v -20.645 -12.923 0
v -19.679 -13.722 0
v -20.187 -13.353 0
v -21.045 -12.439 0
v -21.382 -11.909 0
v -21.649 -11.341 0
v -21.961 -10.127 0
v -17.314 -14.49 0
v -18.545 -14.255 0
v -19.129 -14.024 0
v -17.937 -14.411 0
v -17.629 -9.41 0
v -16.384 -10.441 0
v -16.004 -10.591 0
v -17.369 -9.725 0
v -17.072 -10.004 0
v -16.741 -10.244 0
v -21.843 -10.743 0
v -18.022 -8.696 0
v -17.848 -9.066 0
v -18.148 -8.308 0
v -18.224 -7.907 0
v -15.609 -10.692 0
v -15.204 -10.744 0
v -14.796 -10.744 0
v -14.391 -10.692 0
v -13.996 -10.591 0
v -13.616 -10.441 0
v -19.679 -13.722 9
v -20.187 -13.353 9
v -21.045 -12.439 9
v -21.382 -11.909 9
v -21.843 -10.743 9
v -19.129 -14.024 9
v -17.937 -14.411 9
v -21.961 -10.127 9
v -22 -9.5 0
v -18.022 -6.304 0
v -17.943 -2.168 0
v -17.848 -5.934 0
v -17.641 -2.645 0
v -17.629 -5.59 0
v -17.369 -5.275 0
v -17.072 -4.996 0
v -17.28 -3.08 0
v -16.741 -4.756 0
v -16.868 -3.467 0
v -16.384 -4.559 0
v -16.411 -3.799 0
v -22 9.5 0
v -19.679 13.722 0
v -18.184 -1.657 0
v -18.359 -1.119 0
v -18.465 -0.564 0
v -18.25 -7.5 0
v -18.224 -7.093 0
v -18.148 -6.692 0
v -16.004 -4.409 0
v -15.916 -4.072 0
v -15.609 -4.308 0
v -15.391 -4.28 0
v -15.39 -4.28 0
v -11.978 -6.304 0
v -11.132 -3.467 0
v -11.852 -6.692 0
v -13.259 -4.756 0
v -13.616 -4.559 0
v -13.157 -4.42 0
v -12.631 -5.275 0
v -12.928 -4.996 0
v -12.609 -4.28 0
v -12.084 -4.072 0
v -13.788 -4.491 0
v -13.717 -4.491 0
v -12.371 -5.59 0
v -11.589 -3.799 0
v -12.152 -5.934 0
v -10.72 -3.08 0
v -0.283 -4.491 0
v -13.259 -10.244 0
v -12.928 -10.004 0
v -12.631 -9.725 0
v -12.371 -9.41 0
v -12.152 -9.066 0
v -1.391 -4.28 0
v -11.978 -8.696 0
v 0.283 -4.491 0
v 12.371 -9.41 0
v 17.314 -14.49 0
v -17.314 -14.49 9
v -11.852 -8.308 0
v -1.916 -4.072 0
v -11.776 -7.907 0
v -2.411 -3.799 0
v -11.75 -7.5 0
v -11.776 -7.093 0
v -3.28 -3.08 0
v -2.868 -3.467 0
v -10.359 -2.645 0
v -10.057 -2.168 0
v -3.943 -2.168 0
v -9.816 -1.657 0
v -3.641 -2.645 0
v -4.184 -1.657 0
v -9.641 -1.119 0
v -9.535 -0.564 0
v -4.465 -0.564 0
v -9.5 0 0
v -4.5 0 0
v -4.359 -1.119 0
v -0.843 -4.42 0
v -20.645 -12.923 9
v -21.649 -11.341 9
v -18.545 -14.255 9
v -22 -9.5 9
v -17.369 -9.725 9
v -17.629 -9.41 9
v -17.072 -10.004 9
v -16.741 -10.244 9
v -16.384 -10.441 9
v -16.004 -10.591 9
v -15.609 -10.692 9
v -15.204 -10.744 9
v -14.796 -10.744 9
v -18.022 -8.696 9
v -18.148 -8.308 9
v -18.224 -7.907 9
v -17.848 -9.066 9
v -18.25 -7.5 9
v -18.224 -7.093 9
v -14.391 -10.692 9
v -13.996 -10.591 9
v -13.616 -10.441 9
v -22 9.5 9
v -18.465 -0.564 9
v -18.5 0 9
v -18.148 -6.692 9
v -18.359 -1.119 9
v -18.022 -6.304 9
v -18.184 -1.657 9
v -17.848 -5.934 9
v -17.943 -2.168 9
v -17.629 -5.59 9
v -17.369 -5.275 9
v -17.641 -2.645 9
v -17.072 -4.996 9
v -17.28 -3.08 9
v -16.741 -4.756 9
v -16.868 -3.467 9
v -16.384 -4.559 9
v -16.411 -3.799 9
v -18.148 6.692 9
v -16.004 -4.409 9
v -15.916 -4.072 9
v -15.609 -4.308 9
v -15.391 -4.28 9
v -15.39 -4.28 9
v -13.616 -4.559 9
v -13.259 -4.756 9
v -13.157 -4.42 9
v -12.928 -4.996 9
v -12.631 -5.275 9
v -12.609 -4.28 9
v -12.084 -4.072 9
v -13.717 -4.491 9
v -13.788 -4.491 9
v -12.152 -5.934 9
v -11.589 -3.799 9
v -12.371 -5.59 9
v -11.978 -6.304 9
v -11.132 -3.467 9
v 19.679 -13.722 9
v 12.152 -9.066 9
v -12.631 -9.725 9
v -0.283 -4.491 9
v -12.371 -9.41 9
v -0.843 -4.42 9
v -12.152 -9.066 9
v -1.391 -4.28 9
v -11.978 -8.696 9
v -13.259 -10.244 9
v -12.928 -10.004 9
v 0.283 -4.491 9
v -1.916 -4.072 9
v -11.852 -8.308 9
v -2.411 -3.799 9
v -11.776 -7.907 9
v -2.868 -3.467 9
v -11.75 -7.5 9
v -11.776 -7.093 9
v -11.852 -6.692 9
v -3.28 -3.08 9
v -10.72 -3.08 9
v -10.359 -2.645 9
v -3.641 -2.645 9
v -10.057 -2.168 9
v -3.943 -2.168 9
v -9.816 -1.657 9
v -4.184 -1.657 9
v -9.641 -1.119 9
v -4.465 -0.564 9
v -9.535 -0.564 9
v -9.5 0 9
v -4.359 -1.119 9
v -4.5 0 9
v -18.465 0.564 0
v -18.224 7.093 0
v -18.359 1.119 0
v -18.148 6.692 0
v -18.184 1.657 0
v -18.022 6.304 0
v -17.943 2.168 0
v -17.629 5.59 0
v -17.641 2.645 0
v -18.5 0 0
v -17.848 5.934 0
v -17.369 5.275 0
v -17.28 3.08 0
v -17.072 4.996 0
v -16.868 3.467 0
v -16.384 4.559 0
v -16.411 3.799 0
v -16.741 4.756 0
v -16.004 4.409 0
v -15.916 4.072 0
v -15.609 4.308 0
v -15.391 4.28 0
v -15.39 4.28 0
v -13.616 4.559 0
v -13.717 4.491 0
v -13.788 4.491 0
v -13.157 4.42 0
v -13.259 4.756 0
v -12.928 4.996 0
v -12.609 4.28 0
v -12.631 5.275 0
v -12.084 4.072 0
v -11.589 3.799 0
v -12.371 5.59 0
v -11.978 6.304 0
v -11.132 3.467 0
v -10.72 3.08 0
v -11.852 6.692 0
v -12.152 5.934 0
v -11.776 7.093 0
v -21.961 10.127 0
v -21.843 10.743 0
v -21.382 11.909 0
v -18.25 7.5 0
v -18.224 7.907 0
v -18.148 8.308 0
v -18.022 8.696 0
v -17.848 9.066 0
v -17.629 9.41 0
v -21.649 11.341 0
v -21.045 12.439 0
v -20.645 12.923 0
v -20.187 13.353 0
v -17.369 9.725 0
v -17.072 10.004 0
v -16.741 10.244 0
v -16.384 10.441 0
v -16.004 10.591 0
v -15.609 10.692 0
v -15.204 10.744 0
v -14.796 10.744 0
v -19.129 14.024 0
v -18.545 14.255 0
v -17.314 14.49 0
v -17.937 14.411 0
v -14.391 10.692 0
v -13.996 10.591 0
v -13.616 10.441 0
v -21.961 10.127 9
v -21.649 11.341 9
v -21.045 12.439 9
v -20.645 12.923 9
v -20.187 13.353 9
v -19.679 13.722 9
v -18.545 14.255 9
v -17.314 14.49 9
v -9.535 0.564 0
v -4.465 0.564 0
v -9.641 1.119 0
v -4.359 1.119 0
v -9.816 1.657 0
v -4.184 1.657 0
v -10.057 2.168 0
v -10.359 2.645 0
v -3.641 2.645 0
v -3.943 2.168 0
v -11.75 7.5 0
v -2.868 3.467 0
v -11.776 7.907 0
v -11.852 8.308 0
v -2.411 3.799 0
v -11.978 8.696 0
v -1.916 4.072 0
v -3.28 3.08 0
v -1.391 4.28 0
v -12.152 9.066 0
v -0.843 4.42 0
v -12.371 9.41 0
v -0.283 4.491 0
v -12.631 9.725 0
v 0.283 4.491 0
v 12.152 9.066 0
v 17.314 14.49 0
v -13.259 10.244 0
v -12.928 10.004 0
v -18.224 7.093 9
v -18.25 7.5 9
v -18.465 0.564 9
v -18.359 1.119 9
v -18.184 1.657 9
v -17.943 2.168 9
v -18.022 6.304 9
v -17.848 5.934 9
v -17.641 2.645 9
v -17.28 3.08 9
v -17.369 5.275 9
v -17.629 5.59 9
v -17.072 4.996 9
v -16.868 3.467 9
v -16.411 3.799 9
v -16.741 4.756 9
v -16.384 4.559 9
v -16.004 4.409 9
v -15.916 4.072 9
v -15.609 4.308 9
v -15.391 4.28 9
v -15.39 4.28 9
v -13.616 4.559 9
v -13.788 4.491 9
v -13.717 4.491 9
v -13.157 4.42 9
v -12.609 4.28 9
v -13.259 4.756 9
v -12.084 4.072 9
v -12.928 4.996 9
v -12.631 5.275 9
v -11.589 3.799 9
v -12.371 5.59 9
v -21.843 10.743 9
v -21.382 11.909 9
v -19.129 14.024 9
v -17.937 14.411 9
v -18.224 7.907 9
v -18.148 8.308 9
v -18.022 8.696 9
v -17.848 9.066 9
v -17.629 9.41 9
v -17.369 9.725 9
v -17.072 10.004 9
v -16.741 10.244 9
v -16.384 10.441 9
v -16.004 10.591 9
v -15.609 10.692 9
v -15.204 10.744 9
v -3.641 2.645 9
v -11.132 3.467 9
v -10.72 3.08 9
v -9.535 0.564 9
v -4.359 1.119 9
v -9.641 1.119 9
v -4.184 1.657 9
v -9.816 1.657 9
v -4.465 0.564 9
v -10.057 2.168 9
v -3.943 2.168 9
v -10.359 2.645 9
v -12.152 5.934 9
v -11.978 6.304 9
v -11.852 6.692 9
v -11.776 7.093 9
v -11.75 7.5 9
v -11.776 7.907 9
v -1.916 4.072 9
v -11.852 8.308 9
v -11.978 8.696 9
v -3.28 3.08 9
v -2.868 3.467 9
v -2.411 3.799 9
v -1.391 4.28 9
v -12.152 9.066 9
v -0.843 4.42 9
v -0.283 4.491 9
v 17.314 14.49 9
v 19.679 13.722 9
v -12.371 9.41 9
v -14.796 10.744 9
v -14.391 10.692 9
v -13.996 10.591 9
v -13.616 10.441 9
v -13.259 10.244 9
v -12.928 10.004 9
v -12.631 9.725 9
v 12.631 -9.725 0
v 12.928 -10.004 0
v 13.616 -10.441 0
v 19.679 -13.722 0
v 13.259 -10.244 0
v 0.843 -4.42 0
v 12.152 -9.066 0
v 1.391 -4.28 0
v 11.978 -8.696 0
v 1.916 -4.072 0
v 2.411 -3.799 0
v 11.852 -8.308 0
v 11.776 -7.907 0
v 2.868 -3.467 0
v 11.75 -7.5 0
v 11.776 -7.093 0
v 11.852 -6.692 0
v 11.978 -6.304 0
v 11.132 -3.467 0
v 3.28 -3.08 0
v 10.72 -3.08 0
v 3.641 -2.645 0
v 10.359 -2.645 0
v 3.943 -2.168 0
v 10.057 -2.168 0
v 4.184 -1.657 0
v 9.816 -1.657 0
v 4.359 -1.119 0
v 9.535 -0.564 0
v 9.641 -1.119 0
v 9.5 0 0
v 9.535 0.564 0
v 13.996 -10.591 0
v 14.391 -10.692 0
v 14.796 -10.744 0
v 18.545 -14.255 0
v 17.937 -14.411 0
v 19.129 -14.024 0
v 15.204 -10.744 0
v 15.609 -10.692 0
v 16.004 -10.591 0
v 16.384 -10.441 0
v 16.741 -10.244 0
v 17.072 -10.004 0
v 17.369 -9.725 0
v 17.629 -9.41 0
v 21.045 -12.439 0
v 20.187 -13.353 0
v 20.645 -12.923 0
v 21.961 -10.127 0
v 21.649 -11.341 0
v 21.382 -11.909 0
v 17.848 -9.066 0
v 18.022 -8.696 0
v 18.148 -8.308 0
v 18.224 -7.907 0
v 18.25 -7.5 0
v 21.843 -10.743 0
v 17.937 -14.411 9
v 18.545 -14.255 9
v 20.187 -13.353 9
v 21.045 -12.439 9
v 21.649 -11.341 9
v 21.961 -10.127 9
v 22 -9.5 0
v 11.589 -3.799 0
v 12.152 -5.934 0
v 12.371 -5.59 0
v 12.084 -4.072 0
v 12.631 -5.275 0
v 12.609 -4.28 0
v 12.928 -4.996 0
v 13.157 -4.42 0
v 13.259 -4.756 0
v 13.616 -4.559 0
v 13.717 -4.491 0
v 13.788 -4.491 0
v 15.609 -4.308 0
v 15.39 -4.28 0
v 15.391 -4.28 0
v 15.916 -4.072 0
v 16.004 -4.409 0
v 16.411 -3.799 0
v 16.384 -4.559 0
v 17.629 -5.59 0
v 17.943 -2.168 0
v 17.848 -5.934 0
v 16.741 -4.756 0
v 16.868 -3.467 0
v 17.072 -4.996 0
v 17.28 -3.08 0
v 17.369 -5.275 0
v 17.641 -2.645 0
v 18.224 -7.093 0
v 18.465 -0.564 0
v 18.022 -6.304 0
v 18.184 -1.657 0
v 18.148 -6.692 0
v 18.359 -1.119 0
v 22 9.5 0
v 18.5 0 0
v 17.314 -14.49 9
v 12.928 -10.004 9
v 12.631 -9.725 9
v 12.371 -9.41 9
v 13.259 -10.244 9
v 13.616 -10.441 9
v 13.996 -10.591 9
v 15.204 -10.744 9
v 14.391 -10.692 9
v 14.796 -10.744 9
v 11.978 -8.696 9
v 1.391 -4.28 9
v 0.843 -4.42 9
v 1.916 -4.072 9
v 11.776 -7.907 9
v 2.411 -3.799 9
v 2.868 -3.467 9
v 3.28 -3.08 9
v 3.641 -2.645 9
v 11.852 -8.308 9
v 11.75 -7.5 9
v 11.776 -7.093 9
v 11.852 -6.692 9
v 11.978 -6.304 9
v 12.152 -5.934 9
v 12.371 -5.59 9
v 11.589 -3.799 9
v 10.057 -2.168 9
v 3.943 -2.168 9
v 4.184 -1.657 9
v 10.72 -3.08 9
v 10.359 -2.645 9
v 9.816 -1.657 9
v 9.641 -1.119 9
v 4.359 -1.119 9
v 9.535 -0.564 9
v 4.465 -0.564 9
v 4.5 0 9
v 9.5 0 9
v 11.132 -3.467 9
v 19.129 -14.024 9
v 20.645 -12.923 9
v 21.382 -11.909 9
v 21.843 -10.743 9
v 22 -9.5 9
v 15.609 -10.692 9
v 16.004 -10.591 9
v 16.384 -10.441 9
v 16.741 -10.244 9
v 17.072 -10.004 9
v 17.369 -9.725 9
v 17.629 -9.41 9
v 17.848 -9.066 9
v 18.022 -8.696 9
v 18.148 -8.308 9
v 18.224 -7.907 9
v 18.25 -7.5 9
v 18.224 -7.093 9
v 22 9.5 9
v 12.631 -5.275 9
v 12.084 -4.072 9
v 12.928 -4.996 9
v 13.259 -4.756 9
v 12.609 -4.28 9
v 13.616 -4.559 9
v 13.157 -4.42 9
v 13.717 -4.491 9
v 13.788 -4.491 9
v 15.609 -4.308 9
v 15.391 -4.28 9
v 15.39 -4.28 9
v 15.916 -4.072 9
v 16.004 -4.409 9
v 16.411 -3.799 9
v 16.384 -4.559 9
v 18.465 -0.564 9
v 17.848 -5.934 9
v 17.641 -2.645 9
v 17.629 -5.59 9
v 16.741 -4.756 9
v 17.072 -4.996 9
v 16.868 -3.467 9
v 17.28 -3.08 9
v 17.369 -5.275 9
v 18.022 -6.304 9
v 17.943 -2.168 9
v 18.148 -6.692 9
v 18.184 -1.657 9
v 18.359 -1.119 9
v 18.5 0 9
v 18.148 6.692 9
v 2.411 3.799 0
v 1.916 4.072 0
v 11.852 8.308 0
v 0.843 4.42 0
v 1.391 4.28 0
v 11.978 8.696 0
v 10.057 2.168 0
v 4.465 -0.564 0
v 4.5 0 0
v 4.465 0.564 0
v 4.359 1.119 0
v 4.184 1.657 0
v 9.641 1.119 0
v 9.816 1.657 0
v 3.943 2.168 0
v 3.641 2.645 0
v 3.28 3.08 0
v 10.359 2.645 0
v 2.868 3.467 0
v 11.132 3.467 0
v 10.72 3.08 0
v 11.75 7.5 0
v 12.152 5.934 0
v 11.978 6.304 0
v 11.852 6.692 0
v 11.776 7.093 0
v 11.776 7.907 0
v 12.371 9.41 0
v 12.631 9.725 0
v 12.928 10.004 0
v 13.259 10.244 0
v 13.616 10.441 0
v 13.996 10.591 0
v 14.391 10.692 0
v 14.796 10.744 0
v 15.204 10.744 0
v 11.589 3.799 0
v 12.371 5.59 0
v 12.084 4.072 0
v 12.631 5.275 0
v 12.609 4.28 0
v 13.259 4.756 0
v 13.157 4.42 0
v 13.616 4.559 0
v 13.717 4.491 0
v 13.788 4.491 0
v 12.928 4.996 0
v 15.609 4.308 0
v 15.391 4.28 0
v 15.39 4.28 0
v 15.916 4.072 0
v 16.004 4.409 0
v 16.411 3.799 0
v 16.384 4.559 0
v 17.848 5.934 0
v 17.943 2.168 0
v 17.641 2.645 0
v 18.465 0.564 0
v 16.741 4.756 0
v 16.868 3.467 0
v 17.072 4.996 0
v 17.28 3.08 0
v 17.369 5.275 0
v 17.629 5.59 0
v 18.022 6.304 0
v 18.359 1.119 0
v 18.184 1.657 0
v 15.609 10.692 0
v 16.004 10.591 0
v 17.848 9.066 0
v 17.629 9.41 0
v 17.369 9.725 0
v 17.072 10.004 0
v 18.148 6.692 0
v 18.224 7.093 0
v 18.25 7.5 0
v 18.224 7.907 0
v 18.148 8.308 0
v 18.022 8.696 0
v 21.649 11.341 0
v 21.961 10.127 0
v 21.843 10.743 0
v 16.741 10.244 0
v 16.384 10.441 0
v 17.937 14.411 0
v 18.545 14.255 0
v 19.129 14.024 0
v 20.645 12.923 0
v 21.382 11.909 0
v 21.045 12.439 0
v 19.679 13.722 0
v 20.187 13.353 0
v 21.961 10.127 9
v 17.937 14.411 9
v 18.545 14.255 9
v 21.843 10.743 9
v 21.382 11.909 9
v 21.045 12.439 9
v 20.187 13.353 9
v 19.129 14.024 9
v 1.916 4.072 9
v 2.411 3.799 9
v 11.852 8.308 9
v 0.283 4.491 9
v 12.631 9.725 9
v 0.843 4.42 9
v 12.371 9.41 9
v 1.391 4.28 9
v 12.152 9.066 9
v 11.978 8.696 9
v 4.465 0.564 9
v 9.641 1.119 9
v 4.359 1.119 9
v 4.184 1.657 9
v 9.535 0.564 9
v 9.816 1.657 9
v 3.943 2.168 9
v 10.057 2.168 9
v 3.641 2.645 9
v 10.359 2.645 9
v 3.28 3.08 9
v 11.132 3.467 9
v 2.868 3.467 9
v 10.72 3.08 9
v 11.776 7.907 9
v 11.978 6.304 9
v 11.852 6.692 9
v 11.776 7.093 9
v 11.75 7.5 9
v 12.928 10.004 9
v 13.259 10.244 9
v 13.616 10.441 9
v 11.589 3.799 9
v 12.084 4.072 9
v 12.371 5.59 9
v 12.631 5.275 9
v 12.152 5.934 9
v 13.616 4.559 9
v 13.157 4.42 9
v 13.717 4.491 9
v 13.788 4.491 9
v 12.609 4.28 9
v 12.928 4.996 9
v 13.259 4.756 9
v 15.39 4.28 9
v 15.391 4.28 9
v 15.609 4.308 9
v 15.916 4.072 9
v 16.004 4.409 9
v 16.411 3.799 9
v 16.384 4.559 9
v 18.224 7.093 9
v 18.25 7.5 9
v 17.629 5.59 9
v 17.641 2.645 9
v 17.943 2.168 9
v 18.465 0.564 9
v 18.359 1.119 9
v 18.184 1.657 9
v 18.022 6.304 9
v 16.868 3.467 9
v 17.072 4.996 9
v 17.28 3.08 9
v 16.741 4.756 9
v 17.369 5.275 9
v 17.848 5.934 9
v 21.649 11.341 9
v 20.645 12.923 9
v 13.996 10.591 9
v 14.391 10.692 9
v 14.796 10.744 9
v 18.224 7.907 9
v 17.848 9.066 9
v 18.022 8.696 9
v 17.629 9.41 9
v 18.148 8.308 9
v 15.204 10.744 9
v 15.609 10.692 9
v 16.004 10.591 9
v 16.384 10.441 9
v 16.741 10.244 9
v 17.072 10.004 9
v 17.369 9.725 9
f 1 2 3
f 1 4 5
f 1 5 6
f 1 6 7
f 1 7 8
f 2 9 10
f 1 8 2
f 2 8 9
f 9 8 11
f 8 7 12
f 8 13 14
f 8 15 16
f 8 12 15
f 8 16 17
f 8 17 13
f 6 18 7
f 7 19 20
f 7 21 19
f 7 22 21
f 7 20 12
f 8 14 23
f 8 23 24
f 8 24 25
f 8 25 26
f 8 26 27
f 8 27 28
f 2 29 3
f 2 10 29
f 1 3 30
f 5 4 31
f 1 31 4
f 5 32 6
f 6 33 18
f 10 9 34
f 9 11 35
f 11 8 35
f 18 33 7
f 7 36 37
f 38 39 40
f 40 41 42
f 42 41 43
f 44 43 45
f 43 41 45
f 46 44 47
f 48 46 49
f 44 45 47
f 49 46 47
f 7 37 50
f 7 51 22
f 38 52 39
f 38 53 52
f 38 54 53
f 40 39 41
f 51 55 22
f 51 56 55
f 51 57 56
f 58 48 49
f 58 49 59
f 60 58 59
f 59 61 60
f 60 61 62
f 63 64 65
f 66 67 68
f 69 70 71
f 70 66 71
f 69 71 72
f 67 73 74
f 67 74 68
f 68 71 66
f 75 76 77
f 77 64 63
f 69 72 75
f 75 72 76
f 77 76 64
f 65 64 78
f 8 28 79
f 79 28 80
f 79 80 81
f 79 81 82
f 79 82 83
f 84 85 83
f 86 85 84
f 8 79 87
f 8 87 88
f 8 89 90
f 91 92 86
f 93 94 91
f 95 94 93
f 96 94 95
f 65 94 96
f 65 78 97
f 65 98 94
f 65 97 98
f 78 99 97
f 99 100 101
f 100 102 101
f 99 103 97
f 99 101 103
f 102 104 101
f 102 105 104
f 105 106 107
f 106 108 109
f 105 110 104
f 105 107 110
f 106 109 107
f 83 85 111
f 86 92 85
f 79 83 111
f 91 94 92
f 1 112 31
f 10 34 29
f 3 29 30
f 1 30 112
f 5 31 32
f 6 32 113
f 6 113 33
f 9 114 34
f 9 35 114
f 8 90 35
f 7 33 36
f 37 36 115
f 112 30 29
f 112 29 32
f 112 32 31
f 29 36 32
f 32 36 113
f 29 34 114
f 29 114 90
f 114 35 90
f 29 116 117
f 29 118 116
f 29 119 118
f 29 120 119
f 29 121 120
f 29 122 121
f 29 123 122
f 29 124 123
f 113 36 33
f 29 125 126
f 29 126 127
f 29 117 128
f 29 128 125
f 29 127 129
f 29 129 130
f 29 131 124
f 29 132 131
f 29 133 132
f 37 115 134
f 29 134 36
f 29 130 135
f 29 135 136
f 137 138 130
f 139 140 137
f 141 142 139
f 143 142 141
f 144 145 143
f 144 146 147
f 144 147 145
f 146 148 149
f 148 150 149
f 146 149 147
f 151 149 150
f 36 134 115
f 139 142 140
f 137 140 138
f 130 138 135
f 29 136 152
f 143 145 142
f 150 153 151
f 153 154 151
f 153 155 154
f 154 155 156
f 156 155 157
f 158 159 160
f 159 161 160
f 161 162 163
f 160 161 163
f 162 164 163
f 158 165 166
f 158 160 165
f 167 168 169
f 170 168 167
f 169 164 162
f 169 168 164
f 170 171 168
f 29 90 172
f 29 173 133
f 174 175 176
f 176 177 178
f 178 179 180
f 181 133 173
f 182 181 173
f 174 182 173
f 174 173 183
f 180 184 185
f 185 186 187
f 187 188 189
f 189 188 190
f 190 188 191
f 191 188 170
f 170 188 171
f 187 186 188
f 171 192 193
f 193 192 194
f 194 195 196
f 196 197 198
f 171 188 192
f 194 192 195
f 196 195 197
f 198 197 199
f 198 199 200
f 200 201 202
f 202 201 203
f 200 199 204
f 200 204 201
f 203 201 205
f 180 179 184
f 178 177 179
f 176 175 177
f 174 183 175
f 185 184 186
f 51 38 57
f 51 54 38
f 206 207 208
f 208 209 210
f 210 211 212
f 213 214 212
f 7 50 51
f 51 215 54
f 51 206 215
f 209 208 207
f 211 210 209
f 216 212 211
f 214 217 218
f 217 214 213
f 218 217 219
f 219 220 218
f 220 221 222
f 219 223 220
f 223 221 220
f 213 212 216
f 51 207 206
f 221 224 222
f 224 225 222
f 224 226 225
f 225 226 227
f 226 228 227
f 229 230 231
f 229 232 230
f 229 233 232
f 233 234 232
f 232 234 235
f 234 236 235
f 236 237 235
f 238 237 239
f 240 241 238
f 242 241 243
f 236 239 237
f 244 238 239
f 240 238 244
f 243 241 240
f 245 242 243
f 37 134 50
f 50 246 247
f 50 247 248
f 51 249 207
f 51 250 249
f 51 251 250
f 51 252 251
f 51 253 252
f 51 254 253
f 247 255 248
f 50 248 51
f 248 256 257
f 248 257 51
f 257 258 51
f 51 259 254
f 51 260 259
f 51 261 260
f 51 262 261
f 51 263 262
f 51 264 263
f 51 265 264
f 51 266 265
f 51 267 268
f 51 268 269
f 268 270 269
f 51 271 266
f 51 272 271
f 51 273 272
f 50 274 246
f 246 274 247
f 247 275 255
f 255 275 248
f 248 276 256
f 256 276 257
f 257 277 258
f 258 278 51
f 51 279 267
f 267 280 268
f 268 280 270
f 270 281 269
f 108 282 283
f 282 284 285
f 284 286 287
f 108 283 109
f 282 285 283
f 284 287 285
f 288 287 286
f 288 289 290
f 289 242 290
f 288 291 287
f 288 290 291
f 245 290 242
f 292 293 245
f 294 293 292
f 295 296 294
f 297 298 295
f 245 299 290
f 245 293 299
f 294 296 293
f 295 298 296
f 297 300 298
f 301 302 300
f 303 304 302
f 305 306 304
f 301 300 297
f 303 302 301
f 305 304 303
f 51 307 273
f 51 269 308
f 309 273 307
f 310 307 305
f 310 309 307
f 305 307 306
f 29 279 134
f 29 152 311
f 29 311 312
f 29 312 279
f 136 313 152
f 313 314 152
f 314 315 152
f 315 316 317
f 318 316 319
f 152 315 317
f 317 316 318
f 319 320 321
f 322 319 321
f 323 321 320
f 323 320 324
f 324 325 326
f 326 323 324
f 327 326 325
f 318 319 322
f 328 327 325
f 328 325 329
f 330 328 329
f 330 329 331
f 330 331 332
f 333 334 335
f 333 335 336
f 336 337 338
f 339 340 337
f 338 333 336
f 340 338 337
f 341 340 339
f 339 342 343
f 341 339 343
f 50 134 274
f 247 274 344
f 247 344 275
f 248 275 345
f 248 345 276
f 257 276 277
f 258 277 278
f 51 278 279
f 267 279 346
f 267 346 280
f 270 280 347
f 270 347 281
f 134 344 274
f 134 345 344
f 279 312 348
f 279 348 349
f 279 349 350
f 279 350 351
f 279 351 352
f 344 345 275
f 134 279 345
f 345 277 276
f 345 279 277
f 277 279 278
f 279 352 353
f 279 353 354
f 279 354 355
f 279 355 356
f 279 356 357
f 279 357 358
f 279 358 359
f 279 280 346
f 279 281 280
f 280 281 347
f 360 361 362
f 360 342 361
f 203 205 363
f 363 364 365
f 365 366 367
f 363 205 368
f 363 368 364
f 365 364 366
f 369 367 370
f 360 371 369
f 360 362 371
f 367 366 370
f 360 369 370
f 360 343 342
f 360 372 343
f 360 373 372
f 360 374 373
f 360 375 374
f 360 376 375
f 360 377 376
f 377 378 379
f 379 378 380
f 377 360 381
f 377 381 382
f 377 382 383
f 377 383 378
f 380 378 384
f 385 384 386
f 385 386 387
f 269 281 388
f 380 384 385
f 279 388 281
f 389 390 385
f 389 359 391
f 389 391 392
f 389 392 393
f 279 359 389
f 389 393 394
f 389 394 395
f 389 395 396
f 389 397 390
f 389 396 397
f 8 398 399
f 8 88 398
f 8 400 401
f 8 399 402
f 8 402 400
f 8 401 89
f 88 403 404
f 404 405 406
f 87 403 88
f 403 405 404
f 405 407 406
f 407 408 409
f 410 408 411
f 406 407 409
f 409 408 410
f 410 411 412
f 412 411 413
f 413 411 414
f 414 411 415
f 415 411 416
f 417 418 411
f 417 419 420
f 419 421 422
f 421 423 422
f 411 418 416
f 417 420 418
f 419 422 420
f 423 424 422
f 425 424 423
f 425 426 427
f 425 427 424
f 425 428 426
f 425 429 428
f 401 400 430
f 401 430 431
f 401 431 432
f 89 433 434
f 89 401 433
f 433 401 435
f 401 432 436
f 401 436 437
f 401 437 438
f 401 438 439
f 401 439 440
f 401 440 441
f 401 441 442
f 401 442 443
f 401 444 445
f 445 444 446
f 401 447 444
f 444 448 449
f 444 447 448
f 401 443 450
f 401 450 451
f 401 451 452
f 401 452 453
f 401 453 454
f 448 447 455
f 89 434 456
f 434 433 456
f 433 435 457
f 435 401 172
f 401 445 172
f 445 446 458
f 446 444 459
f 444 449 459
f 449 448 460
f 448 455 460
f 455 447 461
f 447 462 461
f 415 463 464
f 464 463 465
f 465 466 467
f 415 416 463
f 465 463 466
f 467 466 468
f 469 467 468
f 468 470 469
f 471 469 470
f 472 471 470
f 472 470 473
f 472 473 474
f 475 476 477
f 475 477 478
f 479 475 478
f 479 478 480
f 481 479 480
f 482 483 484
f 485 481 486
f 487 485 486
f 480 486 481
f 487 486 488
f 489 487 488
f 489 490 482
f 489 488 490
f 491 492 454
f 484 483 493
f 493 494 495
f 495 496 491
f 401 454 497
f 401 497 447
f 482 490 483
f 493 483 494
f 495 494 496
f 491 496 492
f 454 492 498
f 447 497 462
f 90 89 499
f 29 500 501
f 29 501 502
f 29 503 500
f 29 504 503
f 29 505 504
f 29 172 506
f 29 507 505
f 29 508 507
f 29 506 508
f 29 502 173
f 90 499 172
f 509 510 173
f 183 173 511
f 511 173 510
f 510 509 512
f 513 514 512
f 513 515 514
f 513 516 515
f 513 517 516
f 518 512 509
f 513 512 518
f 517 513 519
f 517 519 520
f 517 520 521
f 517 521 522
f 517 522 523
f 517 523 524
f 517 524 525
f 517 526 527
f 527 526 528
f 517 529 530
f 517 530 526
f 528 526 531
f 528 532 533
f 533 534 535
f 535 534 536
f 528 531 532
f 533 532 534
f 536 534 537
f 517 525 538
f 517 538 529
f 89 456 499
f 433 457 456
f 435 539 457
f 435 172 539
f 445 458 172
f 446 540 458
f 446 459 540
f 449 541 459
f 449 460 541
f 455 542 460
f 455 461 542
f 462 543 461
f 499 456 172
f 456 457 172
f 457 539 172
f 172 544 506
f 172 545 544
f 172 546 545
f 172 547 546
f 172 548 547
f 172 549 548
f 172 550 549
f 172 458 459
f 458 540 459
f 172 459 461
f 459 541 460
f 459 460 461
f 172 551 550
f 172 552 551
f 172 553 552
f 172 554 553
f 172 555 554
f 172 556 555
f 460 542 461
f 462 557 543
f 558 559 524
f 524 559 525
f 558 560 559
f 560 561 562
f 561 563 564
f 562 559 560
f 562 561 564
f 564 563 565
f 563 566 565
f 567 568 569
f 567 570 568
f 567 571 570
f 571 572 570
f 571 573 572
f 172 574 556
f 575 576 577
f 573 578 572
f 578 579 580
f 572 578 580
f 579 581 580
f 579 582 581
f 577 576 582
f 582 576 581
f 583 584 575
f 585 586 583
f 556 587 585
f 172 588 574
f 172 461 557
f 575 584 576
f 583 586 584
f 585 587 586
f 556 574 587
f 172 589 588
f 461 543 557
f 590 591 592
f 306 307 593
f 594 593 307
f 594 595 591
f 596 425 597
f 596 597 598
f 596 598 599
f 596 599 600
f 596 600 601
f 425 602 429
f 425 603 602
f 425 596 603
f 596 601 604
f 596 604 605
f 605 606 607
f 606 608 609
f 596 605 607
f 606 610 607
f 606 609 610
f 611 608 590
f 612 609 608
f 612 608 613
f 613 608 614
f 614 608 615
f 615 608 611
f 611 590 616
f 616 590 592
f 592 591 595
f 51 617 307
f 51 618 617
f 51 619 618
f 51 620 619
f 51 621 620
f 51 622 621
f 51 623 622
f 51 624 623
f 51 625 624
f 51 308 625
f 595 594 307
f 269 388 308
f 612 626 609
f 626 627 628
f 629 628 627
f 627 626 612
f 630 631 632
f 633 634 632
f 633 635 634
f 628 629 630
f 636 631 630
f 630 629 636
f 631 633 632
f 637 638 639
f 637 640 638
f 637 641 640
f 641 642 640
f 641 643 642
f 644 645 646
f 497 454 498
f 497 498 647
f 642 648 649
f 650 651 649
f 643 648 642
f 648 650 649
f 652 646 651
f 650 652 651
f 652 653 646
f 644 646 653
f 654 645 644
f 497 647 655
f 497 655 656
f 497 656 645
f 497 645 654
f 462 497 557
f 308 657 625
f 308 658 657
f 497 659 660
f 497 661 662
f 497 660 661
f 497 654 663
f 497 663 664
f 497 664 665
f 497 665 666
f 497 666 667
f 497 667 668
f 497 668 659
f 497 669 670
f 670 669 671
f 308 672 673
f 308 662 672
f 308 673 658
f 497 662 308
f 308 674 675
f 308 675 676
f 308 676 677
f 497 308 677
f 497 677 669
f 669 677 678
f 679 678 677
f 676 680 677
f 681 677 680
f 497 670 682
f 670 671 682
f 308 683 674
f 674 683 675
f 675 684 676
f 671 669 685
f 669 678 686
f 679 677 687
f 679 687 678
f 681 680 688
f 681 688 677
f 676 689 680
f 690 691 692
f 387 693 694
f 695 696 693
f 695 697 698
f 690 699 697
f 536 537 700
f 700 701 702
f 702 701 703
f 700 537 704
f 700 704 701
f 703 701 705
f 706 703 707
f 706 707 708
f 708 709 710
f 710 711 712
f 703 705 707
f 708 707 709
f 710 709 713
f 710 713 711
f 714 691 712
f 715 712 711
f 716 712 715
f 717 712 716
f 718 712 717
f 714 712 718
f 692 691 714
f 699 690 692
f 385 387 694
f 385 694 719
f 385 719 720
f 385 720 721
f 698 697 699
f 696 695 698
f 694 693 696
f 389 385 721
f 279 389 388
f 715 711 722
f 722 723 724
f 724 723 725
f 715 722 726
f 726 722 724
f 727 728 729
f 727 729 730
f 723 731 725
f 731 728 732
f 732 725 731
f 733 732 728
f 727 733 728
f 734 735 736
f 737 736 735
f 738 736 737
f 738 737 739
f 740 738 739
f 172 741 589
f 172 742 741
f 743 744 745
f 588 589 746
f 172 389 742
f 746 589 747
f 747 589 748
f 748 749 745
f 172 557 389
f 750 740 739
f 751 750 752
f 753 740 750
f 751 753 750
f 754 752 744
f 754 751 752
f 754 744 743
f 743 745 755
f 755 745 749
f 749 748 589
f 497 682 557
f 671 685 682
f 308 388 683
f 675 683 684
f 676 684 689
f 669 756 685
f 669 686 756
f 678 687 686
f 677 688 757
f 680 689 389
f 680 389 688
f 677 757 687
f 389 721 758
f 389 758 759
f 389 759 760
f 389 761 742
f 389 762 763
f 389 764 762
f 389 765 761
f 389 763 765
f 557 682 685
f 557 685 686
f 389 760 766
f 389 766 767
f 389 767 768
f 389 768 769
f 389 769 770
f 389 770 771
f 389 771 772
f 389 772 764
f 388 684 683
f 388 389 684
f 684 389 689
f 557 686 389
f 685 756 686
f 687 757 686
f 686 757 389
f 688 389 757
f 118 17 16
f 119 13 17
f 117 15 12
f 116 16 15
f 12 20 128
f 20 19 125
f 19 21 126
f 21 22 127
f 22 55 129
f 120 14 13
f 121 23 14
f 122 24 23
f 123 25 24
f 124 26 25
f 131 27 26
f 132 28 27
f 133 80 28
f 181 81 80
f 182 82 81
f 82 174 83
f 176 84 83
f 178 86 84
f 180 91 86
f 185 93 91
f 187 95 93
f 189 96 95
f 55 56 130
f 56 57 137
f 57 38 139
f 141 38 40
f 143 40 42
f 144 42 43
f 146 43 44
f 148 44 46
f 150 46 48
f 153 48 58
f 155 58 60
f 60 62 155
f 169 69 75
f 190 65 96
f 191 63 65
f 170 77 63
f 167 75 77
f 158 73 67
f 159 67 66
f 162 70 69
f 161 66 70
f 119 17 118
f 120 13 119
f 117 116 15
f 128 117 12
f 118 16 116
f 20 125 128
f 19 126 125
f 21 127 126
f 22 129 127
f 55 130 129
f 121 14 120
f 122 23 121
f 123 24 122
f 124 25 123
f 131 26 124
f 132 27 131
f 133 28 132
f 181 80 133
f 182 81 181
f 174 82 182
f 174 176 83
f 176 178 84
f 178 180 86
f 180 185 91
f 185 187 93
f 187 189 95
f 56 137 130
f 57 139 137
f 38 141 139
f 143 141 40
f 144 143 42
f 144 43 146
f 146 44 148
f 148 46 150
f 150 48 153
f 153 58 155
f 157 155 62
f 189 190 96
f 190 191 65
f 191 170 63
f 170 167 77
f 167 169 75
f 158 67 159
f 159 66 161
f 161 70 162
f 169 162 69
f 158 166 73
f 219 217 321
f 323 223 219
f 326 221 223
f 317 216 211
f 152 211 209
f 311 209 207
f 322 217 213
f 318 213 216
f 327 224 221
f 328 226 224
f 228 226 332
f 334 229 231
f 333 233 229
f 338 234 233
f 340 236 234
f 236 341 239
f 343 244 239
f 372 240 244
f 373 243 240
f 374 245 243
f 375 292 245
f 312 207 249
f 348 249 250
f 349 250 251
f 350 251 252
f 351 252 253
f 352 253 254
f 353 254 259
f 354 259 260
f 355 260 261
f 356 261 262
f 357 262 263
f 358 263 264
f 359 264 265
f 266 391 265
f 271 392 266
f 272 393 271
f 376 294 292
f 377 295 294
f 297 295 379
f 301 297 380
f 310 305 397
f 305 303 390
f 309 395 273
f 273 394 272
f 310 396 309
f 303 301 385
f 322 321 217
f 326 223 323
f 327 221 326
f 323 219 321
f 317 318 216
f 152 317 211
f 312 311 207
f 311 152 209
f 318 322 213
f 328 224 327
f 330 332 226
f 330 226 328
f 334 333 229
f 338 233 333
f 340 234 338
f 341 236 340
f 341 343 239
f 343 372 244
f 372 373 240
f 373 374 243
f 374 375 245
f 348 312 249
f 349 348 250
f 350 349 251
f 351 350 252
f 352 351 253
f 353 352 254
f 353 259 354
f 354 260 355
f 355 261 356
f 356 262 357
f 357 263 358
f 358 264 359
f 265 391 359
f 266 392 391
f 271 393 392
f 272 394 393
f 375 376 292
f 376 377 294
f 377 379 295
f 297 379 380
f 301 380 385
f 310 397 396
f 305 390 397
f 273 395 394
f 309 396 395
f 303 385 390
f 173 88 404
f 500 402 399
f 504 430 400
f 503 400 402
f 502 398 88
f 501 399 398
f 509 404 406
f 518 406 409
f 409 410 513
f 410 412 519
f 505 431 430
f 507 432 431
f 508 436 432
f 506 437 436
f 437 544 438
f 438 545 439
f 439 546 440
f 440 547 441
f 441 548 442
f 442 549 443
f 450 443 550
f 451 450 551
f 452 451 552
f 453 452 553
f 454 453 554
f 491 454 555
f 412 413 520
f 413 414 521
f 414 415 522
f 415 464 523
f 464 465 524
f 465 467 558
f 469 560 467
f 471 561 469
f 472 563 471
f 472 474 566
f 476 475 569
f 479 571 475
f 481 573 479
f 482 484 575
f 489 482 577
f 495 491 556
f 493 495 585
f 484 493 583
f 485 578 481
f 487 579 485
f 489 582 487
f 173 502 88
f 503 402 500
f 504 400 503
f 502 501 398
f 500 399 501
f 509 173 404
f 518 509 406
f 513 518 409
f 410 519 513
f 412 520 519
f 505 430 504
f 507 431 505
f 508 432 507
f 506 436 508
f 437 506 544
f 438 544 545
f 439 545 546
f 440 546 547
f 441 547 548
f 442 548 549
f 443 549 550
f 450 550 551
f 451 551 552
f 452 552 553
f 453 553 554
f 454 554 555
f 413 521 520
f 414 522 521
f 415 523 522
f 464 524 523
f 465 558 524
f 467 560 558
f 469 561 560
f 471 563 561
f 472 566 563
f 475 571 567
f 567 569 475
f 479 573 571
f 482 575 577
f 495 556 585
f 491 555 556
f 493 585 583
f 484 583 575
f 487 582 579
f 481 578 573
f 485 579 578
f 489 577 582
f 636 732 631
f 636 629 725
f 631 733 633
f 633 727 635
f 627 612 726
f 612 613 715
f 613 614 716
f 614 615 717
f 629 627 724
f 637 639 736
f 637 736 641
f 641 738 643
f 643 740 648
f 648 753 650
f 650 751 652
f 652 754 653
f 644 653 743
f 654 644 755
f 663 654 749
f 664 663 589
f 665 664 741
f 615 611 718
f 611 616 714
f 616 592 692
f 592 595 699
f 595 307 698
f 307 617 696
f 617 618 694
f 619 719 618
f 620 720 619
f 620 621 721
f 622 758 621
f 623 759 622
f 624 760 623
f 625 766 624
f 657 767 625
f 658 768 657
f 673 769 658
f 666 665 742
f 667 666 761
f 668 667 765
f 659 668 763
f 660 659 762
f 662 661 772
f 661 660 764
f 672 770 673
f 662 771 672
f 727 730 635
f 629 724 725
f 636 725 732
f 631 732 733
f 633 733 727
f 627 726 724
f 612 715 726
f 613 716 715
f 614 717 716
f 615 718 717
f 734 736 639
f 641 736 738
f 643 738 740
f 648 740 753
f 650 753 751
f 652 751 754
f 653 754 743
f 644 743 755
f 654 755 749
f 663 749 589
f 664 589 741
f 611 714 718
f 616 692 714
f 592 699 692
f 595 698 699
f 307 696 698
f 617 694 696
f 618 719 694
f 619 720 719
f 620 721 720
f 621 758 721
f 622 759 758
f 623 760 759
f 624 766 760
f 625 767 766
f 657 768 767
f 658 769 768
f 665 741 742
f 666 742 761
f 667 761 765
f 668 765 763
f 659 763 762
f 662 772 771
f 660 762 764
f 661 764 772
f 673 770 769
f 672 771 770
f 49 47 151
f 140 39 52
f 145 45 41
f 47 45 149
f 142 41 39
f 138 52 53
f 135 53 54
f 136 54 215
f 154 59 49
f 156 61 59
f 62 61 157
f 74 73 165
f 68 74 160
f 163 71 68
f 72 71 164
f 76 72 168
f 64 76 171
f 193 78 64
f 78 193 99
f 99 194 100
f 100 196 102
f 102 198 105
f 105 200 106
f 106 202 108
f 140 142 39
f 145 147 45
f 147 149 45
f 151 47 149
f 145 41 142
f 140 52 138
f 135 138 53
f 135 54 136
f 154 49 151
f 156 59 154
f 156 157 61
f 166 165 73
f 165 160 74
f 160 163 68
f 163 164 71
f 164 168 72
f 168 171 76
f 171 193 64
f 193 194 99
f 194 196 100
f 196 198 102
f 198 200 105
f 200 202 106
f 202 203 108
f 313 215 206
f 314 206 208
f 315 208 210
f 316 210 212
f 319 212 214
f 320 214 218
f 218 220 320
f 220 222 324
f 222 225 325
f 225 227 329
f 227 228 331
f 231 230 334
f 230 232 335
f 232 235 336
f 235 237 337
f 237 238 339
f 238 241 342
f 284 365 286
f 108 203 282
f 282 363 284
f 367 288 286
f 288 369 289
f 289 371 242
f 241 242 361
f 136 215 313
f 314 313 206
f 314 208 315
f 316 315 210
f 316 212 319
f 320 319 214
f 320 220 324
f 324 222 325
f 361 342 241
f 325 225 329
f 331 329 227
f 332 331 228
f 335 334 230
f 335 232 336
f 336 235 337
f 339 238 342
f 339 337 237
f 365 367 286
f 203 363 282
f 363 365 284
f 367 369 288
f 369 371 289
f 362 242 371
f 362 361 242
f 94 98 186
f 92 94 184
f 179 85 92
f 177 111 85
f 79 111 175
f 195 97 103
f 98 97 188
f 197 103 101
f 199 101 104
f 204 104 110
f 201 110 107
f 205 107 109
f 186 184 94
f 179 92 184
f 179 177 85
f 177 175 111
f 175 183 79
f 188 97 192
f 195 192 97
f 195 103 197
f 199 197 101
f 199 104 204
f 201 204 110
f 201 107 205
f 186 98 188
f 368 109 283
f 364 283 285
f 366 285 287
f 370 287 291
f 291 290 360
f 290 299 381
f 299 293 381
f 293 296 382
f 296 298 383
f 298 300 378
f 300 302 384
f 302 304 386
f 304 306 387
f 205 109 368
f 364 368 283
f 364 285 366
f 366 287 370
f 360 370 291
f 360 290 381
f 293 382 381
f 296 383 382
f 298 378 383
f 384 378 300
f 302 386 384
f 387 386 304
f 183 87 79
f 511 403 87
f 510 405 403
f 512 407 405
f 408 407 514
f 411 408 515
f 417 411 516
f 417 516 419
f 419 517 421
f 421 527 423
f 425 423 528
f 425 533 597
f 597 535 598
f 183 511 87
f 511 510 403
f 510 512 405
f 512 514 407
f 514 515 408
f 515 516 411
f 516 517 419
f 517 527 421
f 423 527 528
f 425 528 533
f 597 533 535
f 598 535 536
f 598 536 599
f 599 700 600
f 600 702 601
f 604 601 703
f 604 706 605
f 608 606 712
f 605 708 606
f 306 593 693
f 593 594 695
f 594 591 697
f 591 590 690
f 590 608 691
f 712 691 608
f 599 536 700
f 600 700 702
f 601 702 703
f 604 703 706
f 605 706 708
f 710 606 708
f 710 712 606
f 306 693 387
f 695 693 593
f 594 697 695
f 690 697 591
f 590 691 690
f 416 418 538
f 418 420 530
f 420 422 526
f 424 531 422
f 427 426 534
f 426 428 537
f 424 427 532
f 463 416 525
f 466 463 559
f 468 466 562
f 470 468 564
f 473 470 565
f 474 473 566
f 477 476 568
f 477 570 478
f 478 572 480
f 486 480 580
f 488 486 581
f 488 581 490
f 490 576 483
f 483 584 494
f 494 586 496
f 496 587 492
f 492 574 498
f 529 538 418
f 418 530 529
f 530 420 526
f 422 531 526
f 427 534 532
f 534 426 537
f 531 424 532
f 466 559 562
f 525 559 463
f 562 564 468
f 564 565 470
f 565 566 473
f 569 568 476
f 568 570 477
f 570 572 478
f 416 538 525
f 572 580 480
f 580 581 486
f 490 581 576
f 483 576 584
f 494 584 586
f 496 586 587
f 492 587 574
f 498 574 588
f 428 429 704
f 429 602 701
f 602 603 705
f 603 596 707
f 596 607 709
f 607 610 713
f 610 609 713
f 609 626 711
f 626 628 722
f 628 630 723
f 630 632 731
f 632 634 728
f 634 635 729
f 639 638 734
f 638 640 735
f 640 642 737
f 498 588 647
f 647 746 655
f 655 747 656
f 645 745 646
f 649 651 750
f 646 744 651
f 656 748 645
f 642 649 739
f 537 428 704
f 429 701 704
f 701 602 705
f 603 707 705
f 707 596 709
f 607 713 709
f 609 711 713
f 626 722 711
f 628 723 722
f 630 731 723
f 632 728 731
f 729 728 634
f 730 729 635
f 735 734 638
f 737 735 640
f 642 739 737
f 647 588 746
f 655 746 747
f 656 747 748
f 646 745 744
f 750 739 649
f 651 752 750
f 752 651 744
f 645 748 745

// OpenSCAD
$fn = 50;

difference() {
	union() {
		hull() {
			translate(v = [-17.0, 9.5, 0]) {
				cylinder(h = 9, r = 5);
			}
			translate(v = [17.0, 9.5, 0]) {
				cylinder(h = 9, r = 5);
			}
			translate(v = [-17.0, -9.5, 0]) {
				cylinder(h = 9, r = 5);
			}
			translate(v = [17.0, -9.5, 0]) {
				cylinder(h = 9, r = 5);
			}
		}
	}
	union() {
		translate(v = [-15.0, -7.5, -100.0]) {
			cylinder(h = 200, r = 3.25);
		}
		translate(v = [-15.0, 7.5, -100.0]) {
			cylinder(h = 200, r = 3.25);
		}
		translate(v = [15.0, -7.5, -100.0]) {
			cylinder(h = 200, r = 3.25);
		}
		translate(v = [15.0, 7.5, -100.0]) {
			cylinder(h = 200, r = 3.25);
		}
		translate(v = [-15.0, -7.5, -100.0]) {
			cylinder(h = 200, r = 1.8);
		}
		translate(v = [-15.0, 7.5, -100.0]) {
			cylinder(h = 200, r = 1.8);
		}
		translate(v = [15.0, -7.5, -100.0]) {
			cylinder(h = 200, r = 1.8);
		}
		translate(v = [15.0, 7.5, -100.0]) {
			cylinder(h = 200, r = 1.8);
		}
		translate(v = [-14.0, 0, 0.0]) {
			cylinder(h = 9, r = 4.5);
		}
		cylinder(h = 9, r = 4.5);
		translate(v = [14.0, 0, 0.0]) {
			cylinder(h = 9, r = 4.5);
		}
	}
}
